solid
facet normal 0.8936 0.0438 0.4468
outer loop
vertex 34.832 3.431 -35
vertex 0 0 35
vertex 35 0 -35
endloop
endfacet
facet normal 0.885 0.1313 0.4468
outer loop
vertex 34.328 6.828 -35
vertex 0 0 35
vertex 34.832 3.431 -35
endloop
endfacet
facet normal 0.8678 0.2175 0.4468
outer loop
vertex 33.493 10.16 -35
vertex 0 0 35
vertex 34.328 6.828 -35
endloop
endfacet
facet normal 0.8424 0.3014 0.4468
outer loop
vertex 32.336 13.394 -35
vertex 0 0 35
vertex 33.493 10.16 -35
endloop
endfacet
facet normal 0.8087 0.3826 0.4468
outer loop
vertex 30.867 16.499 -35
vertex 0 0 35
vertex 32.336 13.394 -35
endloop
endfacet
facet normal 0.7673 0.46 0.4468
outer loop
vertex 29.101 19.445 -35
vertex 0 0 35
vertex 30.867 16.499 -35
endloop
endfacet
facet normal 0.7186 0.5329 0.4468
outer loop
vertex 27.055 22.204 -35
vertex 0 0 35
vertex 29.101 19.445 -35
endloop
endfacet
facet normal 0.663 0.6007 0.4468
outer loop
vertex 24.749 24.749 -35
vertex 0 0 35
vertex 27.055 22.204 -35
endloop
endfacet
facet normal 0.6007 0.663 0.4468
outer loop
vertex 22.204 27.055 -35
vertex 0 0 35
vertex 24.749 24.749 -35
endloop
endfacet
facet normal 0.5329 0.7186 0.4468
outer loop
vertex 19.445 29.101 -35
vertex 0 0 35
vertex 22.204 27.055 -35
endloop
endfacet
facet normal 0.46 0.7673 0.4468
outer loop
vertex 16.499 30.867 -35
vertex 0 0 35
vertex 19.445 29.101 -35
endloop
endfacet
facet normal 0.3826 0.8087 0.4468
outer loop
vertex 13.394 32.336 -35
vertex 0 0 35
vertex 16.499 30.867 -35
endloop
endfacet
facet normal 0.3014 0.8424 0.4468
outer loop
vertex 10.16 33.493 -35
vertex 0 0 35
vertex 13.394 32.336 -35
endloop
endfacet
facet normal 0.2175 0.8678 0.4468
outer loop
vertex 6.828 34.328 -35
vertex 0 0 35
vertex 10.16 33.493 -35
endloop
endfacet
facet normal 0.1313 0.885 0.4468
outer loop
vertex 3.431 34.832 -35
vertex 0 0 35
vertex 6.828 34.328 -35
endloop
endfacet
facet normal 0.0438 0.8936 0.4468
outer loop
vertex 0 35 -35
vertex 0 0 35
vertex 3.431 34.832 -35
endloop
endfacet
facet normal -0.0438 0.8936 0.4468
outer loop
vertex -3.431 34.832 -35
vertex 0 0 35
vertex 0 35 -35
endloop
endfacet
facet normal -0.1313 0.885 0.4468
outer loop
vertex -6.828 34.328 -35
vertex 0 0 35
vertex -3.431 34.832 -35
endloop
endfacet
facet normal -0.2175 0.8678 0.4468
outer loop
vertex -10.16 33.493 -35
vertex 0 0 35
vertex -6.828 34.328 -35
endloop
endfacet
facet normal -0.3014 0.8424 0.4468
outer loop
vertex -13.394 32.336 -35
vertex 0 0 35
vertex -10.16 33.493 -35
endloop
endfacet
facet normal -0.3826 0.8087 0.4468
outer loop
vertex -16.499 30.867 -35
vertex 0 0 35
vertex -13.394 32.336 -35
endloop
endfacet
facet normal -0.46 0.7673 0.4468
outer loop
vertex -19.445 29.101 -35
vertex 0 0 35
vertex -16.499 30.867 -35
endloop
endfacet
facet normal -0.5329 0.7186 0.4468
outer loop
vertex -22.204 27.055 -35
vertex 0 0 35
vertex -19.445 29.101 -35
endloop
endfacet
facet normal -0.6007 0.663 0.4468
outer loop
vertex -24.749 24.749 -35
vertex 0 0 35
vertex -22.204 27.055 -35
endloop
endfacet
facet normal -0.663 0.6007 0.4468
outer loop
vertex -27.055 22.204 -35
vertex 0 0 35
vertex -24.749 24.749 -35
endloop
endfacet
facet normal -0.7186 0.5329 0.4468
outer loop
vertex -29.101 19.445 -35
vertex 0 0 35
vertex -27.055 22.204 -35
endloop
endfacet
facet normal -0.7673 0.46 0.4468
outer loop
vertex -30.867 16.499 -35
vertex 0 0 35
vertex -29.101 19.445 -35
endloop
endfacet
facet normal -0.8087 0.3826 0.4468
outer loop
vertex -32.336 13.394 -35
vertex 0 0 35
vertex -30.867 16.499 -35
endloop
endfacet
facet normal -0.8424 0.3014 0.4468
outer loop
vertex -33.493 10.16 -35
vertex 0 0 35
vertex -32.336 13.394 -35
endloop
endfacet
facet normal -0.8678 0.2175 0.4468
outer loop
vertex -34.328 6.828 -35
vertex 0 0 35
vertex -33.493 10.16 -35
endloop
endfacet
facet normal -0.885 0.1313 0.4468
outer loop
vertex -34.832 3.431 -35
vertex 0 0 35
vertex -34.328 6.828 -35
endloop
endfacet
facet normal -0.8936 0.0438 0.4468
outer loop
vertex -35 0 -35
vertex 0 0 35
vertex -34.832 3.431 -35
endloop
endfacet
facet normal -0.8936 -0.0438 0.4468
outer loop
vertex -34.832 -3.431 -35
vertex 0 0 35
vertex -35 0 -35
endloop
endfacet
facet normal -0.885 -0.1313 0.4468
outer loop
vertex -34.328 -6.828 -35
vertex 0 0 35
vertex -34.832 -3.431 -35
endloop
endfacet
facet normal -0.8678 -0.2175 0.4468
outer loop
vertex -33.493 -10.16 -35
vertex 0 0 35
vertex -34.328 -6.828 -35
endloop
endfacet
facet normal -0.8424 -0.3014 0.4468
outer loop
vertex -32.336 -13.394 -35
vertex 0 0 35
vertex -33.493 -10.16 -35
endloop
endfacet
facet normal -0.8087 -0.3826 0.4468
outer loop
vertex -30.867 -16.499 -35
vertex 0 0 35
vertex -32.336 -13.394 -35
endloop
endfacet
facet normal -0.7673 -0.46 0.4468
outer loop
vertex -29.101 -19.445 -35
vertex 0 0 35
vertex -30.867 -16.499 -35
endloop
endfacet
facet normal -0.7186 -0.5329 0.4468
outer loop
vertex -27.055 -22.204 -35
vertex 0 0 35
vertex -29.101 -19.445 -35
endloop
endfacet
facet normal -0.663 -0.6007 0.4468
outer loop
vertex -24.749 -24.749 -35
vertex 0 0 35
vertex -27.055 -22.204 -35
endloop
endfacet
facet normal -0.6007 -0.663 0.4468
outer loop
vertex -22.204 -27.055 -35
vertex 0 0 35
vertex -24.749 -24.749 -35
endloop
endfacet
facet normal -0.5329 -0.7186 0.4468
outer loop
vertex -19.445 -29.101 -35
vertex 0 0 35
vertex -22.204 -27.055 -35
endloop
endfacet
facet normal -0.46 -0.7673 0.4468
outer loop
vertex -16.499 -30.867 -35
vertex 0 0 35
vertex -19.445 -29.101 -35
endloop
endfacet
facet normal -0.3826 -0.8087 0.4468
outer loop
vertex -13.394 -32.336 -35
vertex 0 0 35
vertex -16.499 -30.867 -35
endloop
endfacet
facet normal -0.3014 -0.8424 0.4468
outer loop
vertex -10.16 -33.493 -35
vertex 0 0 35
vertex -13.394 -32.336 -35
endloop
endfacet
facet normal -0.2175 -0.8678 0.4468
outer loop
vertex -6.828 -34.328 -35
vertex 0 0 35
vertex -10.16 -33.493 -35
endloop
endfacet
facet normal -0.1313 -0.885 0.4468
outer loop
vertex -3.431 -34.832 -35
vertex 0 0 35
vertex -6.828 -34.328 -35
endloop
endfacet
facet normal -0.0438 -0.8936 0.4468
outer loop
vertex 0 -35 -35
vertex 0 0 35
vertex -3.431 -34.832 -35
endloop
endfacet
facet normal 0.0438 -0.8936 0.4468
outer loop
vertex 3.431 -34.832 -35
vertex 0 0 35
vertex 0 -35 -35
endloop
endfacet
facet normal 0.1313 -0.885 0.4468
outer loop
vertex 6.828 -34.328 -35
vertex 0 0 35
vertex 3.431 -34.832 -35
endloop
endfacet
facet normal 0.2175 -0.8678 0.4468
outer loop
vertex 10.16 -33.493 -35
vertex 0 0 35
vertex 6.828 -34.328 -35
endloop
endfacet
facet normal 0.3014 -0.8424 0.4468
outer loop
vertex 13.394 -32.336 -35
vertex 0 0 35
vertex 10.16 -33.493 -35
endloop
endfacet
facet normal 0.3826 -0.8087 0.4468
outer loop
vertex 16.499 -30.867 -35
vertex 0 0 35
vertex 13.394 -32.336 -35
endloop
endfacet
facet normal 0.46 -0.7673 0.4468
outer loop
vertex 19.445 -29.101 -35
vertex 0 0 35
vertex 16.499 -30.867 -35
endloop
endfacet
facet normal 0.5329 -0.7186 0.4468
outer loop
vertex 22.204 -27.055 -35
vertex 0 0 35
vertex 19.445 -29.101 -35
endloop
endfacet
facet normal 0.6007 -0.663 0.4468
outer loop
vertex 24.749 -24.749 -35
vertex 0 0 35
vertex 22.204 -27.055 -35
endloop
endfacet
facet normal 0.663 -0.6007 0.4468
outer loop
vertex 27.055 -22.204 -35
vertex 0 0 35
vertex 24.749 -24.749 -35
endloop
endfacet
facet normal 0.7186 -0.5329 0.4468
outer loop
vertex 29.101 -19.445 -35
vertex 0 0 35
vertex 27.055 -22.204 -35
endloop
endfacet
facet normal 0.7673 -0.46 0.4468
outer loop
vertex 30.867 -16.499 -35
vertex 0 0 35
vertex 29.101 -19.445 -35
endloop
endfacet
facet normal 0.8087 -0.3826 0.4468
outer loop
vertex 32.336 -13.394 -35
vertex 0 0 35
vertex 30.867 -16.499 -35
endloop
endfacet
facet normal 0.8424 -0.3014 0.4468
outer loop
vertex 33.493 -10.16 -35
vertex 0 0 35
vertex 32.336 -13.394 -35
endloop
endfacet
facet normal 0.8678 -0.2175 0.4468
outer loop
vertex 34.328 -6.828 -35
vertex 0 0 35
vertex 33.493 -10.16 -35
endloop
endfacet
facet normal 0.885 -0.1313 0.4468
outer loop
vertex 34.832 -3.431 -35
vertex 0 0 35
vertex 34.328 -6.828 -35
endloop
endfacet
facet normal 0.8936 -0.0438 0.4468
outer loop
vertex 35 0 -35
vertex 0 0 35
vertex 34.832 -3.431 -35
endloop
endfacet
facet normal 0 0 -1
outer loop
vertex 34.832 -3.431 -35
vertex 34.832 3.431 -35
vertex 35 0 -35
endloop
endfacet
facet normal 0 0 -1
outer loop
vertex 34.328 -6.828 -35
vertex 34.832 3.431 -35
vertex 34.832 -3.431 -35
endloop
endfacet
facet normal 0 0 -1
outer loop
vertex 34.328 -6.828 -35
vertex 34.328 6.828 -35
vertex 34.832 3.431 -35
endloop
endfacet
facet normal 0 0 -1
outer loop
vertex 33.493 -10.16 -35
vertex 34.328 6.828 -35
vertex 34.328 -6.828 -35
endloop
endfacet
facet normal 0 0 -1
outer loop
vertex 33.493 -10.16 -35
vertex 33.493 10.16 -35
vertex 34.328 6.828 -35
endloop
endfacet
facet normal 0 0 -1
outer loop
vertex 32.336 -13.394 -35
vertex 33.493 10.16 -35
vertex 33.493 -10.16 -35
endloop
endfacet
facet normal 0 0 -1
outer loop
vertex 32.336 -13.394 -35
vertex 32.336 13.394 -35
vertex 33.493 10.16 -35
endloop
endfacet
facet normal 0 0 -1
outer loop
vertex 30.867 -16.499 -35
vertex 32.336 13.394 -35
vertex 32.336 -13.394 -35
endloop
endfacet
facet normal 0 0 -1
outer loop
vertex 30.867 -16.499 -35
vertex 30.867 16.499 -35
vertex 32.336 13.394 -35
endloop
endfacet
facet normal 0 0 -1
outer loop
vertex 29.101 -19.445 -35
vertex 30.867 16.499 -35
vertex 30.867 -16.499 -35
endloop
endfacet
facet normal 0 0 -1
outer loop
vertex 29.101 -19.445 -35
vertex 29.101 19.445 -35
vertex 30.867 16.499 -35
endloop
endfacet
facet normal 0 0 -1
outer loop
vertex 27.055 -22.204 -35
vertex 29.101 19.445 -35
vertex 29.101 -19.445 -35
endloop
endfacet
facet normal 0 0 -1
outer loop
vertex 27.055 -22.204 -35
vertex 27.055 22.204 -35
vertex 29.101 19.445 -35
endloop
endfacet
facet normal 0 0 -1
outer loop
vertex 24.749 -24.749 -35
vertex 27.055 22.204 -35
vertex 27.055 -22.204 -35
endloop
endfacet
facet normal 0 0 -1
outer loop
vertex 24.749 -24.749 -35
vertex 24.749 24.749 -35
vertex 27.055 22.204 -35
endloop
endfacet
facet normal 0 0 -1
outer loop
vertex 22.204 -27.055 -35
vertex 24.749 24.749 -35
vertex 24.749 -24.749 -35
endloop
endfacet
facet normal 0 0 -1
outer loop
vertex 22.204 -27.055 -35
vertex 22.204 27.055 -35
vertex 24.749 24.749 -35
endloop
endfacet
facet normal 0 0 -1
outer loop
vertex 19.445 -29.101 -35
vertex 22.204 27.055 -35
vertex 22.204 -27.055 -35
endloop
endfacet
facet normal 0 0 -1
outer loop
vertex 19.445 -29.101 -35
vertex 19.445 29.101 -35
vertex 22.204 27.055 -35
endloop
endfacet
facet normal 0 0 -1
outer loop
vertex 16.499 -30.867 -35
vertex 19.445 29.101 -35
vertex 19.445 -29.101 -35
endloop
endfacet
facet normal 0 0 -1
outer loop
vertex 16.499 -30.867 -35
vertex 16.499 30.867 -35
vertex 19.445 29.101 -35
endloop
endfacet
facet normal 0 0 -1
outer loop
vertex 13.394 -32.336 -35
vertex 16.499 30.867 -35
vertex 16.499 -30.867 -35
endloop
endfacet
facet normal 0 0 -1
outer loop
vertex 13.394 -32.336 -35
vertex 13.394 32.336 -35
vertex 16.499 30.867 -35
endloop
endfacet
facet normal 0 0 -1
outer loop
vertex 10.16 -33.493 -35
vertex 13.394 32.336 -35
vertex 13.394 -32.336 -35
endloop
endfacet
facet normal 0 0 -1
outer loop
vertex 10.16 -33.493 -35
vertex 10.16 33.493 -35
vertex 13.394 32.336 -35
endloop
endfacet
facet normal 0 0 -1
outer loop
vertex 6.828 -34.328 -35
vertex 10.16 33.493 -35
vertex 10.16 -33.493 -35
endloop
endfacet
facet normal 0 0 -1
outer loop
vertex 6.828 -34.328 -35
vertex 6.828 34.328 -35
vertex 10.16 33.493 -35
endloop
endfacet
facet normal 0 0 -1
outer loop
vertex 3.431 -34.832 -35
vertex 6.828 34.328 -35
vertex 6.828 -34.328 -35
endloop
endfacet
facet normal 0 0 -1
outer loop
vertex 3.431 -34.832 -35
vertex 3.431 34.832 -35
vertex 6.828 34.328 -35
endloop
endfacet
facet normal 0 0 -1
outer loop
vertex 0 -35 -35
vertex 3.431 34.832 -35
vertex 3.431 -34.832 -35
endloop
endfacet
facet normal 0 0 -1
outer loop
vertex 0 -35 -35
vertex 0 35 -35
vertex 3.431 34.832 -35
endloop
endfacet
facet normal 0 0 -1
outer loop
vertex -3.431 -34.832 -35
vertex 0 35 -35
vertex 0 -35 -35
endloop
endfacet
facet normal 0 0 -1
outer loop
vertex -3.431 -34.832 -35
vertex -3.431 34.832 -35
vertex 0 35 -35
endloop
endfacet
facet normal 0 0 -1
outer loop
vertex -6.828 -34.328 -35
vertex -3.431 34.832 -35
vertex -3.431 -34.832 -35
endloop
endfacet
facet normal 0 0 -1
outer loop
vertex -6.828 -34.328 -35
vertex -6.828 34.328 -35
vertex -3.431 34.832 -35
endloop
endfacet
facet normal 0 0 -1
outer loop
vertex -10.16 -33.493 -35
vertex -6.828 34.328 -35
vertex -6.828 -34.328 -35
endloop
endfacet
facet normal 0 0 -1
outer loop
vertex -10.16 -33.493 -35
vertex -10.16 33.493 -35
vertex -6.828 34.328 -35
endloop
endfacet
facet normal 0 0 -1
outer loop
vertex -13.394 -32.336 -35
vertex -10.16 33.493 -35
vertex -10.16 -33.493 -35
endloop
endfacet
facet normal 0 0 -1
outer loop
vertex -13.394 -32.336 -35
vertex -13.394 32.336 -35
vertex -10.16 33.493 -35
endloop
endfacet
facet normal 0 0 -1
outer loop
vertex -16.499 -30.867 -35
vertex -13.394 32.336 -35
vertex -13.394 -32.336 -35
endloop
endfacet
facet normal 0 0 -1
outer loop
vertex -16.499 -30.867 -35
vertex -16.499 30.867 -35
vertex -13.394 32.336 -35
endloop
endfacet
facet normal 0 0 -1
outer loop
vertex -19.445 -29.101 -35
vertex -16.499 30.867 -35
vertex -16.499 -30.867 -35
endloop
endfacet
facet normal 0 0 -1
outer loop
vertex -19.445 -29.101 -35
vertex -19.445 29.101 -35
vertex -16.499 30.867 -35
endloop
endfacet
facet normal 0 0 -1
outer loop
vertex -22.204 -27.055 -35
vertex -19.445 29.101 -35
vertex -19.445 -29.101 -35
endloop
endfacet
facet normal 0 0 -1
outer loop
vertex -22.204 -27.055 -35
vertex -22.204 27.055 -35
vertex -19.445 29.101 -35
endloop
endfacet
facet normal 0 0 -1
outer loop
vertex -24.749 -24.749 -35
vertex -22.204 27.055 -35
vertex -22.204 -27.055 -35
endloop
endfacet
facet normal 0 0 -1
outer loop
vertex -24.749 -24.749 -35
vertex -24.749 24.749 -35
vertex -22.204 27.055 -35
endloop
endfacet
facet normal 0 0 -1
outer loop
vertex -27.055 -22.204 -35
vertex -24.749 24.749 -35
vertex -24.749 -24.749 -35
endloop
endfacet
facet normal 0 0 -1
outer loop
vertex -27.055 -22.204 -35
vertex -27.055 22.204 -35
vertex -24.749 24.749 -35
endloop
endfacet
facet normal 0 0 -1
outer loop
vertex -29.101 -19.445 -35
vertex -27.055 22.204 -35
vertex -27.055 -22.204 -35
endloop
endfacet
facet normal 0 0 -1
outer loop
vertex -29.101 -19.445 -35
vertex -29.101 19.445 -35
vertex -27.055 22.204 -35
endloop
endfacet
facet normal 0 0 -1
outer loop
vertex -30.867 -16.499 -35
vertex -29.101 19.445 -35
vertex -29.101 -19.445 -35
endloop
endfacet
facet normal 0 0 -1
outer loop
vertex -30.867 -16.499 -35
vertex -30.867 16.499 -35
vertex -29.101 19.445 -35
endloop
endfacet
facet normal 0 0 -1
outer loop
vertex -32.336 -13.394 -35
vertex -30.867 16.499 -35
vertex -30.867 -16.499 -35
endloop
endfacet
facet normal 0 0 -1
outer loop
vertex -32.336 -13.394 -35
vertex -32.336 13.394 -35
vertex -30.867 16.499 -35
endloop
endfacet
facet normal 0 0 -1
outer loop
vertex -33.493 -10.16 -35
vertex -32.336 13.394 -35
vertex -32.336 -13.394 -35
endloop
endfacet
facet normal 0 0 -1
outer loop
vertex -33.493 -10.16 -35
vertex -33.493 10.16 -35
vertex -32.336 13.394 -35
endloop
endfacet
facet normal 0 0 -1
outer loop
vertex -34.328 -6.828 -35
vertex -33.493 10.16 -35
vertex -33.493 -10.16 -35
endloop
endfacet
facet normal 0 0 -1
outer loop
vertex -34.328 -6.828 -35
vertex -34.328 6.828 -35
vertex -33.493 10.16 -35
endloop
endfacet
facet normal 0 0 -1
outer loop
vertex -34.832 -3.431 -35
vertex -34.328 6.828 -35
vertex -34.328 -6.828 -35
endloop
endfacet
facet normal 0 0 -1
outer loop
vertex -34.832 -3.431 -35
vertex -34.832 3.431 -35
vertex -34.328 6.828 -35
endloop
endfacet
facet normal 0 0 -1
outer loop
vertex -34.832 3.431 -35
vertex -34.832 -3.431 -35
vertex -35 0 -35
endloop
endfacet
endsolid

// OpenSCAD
// file: _common.scad
// orthographic 共用尺寸 / 解析度設定
// 所有物件外接立方控制在 ~80 mm，方便相機固定縮放
$fn = 64;  // 圓面解析度（影響 STL 大小，64 在視覺與大小取得平衡）
CHAMFER = 1.2;  // 標準導角尺寸
// main file
// 圓錐（底徑 70、頂尖、高 70）
include <_common.scad>

translate([0, 0, -35]) cylinder(h = 70, r1 = 35, r2 = 0, $fn = $fn);
